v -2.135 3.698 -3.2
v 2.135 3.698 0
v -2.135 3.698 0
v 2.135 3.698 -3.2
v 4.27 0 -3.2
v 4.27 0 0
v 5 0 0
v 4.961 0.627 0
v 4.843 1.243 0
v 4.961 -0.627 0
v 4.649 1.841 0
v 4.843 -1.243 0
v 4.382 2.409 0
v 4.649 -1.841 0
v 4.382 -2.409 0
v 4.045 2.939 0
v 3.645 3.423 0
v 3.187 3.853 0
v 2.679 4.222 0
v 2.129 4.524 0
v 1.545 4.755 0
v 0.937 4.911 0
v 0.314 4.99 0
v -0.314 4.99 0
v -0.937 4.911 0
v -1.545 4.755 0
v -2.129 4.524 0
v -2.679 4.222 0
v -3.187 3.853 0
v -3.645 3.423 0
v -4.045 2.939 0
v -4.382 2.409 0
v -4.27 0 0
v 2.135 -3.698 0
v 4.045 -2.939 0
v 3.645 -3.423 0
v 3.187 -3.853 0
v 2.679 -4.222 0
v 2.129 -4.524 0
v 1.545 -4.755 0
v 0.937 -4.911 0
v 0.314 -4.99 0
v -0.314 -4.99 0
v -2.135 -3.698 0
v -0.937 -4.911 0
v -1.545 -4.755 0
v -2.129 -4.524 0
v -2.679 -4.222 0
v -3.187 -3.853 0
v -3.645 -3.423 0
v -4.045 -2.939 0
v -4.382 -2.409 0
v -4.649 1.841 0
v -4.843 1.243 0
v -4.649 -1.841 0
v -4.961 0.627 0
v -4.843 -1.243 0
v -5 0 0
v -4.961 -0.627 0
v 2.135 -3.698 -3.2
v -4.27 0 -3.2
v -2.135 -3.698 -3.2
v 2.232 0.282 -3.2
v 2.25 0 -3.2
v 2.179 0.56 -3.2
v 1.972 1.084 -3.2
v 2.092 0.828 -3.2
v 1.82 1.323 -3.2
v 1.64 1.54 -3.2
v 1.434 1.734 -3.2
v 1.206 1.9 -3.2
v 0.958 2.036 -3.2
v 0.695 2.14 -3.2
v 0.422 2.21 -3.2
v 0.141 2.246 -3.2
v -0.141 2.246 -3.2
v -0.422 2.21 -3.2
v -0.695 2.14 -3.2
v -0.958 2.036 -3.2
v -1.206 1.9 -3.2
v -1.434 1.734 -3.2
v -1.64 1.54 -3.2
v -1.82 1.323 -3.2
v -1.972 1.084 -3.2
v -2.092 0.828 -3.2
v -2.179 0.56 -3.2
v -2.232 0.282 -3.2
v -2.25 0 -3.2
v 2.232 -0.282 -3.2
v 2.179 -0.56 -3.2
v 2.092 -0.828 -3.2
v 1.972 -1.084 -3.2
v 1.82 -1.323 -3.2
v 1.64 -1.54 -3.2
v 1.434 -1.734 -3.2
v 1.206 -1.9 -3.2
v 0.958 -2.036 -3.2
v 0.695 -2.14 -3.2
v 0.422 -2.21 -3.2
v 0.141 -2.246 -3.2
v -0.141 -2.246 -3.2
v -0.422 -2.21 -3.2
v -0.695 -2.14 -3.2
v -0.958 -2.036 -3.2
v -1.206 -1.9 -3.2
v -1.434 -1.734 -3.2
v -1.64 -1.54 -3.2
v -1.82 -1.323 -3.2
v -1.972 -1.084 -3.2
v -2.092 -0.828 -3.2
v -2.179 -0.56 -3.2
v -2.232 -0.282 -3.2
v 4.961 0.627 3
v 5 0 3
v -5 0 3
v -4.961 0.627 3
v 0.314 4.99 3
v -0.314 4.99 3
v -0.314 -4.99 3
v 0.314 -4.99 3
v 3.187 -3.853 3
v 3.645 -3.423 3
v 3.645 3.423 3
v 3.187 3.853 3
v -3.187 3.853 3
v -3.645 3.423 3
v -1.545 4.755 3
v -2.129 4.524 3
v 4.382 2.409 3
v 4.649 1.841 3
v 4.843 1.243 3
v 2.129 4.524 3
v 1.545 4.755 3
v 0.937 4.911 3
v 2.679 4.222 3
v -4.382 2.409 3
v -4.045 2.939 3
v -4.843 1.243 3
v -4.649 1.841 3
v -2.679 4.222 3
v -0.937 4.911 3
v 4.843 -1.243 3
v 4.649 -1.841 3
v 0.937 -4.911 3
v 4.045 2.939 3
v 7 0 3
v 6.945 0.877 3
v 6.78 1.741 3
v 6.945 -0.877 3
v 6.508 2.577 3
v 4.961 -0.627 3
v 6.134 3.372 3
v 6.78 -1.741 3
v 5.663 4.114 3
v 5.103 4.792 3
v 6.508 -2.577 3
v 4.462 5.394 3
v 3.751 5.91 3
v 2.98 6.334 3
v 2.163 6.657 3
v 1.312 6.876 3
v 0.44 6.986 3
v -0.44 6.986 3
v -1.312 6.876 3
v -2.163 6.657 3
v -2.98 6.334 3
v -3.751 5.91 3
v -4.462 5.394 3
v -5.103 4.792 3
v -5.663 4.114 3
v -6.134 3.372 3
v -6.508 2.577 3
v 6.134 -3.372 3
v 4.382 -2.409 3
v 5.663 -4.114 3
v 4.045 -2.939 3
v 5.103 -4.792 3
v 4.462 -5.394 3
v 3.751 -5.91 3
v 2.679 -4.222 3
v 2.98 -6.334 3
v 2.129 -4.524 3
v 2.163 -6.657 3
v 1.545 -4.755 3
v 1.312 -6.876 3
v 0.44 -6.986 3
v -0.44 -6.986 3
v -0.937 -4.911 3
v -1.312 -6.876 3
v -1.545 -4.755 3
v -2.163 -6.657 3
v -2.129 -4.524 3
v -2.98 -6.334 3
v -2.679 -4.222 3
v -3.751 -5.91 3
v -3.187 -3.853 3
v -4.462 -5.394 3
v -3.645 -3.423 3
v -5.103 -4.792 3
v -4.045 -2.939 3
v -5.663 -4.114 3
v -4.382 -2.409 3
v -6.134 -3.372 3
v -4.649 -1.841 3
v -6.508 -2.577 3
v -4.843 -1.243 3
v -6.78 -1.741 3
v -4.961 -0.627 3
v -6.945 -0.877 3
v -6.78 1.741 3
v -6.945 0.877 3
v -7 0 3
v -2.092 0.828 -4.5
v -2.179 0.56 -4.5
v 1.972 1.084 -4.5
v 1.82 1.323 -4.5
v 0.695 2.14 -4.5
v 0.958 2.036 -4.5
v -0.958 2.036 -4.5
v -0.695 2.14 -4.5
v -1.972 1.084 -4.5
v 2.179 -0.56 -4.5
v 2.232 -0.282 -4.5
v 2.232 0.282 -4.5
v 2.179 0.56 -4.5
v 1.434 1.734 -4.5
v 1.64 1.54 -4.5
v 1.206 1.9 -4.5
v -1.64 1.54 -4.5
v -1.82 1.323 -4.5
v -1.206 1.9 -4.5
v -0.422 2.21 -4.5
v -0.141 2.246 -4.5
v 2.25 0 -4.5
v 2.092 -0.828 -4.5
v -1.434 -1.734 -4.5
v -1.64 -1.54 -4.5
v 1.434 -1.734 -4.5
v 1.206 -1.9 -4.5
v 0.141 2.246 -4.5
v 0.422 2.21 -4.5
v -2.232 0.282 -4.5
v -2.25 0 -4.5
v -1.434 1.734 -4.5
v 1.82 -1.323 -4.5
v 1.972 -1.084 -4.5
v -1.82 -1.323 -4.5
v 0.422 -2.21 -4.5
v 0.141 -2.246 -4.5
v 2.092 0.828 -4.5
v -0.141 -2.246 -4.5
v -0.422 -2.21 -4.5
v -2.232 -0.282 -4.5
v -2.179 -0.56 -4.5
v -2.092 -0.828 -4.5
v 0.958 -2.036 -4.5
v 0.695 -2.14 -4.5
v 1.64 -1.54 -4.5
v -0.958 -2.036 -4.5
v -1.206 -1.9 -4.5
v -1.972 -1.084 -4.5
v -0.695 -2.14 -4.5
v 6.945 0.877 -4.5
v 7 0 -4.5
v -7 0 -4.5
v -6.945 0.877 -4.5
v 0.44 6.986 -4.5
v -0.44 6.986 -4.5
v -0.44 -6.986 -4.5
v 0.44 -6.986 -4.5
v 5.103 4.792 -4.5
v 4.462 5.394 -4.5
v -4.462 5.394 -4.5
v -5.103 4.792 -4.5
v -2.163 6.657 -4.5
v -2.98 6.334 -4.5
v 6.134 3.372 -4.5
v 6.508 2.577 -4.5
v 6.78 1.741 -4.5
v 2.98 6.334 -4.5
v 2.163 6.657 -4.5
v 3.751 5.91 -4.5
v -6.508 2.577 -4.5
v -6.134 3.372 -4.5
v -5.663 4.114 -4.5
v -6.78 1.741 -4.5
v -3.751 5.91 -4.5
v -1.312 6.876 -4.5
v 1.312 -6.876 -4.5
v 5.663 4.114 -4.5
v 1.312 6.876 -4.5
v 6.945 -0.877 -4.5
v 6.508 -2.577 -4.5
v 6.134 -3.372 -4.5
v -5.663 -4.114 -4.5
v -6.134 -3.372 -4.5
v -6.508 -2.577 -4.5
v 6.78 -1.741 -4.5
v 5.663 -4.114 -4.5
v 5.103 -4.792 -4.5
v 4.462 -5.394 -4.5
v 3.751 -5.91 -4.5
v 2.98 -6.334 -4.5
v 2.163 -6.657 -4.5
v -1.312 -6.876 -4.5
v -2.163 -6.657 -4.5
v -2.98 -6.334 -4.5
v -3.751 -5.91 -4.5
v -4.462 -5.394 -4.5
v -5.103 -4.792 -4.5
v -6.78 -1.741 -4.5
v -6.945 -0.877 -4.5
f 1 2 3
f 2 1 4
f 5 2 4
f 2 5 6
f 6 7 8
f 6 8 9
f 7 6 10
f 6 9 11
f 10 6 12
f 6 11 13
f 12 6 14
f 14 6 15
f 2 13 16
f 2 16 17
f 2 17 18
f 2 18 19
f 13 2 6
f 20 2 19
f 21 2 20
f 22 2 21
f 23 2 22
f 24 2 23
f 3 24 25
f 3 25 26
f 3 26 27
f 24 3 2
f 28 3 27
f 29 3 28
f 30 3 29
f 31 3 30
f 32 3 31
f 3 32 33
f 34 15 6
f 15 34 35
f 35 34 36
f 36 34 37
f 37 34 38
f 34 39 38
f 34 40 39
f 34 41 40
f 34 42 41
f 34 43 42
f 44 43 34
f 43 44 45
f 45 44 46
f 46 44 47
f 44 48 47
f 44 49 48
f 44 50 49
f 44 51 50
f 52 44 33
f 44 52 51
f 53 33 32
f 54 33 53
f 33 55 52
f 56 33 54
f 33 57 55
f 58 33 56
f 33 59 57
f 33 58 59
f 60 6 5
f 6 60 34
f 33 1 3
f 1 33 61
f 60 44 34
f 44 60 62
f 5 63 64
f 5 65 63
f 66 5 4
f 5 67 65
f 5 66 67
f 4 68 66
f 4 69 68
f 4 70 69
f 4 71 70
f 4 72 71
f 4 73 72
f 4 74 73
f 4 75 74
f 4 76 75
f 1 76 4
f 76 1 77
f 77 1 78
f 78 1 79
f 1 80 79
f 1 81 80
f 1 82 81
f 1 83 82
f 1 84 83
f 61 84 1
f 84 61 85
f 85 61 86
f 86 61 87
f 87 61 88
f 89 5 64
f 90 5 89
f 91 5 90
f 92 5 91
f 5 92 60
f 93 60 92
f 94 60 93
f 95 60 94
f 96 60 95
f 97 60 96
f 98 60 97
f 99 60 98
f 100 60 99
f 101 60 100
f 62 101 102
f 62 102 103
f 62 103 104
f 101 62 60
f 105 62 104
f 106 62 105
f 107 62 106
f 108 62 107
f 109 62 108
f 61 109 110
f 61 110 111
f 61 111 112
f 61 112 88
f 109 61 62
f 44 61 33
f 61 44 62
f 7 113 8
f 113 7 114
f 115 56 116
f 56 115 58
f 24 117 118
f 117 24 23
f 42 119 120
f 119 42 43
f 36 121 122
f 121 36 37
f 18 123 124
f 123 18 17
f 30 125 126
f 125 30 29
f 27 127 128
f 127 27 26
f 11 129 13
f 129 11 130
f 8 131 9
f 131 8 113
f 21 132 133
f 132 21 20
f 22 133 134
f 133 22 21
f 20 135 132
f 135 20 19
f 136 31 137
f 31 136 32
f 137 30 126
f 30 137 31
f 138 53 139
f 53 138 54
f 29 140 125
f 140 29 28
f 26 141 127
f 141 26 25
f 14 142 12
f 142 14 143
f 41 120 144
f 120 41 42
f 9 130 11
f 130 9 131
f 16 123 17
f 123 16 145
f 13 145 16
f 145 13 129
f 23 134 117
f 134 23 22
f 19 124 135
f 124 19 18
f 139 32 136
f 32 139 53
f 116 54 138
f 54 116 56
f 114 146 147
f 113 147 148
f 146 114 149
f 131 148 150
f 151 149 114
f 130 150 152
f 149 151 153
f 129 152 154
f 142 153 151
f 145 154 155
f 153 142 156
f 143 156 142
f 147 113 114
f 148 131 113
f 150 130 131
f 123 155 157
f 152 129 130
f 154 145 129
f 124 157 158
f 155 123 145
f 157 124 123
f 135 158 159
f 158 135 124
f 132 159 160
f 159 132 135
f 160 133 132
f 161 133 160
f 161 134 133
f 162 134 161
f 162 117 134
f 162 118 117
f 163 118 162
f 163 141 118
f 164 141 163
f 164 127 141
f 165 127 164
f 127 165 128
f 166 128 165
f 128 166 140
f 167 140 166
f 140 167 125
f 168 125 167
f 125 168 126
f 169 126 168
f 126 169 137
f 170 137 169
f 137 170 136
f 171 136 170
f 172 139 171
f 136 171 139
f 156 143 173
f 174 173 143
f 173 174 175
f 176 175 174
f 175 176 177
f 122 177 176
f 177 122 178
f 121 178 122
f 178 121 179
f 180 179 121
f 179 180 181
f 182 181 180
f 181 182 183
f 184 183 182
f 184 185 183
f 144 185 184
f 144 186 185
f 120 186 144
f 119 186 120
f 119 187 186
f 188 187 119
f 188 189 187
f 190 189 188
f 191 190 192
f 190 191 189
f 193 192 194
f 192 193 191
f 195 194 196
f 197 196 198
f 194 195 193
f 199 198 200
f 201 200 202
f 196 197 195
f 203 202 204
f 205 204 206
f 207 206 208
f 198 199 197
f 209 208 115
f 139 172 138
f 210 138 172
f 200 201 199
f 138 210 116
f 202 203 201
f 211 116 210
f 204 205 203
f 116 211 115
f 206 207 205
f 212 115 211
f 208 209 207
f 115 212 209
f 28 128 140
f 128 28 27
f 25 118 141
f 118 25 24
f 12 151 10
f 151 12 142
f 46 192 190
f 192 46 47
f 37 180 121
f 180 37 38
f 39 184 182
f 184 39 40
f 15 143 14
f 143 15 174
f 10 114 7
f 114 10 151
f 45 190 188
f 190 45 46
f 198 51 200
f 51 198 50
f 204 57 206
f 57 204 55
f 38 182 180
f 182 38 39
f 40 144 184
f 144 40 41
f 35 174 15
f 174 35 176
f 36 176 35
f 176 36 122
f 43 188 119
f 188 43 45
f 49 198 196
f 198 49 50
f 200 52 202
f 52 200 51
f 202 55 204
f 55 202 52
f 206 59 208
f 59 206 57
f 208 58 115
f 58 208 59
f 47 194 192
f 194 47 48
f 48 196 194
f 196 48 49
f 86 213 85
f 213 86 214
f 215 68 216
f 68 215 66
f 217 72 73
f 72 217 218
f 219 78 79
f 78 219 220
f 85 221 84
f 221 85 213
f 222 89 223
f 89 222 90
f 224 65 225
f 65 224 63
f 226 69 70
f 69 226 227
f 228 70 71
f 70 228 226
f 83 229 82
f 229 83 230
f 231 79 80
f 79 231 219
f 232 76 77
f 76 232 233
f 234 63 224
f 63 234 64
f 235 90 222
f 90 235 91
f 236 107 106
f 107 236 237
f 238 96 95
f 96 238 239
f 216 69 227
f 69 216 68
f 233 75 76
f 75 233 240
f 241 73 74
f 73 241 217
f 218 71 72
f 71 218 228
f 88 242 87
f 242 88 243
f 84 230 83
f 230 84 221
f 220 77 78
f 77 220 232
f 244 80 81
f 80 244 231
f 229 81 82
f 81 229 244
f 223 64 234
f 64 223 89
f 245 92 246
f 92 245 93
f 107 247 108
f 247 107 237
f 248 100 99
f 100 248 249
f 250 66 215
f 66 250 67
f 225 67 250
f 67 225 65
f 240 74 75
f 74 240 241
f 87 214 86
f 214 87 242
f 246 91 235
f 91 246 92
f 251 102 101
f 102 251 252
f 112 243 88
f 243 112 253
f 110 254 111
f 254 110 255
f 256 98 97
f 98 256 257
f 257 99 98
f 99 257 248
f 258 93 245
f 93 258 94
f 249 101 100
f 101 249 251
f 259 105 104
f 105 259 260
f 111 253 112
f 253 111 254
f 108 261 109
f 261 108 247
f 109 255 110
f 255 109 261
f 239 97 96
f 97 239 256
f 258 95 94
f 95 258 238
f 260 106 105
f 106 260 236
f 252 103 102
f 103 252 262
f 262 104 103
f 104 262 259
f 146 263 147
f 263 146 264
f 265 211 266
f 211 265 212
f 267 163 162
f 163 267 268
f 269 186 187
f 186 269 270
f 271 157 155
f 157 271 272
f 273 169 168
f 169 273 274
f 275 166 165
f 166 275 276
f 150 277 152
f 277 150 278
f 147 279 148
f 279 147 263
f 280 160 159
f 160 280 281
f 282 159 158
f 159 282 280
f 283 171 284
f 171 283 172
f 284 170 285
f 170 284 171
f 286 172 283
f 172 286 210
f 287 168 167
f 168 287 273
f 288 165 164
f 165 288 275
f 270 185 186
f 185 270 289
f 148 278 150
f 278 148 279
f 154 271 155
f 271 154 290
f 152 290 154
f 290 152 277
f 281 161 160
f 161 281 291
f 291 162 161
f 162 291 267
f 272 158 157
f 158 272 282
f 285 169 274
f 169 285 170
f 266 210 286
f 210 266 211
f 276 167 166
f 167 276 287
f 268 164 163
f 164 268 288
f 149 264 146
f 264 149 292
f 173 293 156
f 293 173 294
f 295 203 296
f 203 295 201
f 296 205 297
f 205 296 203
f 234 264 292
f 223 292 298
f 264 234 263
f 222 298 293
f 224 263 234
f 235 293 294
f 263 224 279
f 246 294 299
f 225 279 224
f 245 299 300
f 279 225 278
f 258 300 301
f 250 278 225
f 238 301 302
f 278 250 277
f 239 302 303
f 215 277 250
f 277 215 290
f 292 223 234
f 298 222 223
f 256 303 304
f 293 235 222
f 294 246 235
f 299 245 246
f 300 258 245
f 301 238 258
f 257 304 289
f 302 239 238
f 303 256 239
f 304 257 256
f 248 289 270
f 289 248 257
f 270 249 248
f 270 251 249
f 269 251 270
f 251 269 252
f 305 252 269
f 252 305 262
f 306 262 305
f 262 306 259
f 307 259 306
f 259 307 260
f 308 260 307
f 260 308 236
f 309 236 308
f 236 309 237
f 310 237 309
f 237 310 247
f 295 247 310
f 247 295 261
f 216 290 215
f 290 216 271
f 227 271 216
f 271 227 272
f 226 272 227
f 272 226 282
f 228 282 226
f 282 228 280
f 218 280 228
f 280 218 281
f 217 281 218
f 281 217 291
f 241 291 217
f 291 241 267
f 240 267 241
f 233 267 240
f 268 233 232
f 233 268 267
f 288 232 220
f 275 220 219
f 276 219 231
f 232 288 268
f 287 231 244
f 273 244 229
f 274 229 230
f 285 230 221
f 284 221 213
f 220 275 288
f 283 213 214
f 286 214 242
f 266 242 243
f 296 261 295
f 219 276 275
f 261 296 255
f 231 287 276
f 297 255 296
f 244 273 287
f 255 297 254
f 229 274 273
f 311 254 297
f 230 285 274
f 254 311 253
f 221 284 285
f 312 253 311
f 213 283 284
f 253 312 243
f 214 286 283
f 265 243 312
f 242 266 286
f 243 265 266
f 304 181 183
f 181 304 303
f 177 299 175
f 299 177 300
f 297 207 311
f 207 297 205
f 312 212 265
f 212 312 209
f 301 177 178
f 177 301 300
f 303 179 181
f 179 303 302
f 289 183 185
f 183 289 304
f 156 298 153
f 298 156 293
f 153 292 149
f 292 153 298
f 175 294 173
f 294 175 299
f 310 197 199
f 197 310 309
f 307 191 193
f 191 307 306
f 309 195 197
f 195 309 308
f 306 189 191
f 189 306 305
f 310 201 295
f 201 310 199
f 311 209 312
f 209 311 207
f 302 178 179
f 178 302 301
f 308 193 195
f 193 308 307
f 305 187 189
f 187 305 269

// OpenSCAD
$fn = 50;


difference() {
	union() {
		translate(v = [0, 0, -4.5000000000]) {
			cylinder(h = 7.5000000000, r = 7.0000000000);
		}
	}
	union() {
		translate(v = [0, 0, 0]) {
			rotate(a = [0, 0, 0]) {
				difference() {
					union() {
						translate(v = [0, 0, -3.2000000000]) {
							linear_extrude(height = 3.2000000000) {
								polygon(points = [[4.2698000000, 0.0000000000], [2.1349000000, 3.6977552691], [-2.1349000000, 3.6977552691], [-4.2698000000, 0.0000000000], [-2.1349000000, -3.6977552691], [2.1349000000, -3.6977552691]]);
							}
						}
					}
					union();
				}
			}
		}
		#cylinder(h = 3, r = 5.0000000000);
		#translate(v = [0, 0, -100.0000000000]) {
			cylinder(h = 200, r = 2.2500000000);
		}
	}
}
